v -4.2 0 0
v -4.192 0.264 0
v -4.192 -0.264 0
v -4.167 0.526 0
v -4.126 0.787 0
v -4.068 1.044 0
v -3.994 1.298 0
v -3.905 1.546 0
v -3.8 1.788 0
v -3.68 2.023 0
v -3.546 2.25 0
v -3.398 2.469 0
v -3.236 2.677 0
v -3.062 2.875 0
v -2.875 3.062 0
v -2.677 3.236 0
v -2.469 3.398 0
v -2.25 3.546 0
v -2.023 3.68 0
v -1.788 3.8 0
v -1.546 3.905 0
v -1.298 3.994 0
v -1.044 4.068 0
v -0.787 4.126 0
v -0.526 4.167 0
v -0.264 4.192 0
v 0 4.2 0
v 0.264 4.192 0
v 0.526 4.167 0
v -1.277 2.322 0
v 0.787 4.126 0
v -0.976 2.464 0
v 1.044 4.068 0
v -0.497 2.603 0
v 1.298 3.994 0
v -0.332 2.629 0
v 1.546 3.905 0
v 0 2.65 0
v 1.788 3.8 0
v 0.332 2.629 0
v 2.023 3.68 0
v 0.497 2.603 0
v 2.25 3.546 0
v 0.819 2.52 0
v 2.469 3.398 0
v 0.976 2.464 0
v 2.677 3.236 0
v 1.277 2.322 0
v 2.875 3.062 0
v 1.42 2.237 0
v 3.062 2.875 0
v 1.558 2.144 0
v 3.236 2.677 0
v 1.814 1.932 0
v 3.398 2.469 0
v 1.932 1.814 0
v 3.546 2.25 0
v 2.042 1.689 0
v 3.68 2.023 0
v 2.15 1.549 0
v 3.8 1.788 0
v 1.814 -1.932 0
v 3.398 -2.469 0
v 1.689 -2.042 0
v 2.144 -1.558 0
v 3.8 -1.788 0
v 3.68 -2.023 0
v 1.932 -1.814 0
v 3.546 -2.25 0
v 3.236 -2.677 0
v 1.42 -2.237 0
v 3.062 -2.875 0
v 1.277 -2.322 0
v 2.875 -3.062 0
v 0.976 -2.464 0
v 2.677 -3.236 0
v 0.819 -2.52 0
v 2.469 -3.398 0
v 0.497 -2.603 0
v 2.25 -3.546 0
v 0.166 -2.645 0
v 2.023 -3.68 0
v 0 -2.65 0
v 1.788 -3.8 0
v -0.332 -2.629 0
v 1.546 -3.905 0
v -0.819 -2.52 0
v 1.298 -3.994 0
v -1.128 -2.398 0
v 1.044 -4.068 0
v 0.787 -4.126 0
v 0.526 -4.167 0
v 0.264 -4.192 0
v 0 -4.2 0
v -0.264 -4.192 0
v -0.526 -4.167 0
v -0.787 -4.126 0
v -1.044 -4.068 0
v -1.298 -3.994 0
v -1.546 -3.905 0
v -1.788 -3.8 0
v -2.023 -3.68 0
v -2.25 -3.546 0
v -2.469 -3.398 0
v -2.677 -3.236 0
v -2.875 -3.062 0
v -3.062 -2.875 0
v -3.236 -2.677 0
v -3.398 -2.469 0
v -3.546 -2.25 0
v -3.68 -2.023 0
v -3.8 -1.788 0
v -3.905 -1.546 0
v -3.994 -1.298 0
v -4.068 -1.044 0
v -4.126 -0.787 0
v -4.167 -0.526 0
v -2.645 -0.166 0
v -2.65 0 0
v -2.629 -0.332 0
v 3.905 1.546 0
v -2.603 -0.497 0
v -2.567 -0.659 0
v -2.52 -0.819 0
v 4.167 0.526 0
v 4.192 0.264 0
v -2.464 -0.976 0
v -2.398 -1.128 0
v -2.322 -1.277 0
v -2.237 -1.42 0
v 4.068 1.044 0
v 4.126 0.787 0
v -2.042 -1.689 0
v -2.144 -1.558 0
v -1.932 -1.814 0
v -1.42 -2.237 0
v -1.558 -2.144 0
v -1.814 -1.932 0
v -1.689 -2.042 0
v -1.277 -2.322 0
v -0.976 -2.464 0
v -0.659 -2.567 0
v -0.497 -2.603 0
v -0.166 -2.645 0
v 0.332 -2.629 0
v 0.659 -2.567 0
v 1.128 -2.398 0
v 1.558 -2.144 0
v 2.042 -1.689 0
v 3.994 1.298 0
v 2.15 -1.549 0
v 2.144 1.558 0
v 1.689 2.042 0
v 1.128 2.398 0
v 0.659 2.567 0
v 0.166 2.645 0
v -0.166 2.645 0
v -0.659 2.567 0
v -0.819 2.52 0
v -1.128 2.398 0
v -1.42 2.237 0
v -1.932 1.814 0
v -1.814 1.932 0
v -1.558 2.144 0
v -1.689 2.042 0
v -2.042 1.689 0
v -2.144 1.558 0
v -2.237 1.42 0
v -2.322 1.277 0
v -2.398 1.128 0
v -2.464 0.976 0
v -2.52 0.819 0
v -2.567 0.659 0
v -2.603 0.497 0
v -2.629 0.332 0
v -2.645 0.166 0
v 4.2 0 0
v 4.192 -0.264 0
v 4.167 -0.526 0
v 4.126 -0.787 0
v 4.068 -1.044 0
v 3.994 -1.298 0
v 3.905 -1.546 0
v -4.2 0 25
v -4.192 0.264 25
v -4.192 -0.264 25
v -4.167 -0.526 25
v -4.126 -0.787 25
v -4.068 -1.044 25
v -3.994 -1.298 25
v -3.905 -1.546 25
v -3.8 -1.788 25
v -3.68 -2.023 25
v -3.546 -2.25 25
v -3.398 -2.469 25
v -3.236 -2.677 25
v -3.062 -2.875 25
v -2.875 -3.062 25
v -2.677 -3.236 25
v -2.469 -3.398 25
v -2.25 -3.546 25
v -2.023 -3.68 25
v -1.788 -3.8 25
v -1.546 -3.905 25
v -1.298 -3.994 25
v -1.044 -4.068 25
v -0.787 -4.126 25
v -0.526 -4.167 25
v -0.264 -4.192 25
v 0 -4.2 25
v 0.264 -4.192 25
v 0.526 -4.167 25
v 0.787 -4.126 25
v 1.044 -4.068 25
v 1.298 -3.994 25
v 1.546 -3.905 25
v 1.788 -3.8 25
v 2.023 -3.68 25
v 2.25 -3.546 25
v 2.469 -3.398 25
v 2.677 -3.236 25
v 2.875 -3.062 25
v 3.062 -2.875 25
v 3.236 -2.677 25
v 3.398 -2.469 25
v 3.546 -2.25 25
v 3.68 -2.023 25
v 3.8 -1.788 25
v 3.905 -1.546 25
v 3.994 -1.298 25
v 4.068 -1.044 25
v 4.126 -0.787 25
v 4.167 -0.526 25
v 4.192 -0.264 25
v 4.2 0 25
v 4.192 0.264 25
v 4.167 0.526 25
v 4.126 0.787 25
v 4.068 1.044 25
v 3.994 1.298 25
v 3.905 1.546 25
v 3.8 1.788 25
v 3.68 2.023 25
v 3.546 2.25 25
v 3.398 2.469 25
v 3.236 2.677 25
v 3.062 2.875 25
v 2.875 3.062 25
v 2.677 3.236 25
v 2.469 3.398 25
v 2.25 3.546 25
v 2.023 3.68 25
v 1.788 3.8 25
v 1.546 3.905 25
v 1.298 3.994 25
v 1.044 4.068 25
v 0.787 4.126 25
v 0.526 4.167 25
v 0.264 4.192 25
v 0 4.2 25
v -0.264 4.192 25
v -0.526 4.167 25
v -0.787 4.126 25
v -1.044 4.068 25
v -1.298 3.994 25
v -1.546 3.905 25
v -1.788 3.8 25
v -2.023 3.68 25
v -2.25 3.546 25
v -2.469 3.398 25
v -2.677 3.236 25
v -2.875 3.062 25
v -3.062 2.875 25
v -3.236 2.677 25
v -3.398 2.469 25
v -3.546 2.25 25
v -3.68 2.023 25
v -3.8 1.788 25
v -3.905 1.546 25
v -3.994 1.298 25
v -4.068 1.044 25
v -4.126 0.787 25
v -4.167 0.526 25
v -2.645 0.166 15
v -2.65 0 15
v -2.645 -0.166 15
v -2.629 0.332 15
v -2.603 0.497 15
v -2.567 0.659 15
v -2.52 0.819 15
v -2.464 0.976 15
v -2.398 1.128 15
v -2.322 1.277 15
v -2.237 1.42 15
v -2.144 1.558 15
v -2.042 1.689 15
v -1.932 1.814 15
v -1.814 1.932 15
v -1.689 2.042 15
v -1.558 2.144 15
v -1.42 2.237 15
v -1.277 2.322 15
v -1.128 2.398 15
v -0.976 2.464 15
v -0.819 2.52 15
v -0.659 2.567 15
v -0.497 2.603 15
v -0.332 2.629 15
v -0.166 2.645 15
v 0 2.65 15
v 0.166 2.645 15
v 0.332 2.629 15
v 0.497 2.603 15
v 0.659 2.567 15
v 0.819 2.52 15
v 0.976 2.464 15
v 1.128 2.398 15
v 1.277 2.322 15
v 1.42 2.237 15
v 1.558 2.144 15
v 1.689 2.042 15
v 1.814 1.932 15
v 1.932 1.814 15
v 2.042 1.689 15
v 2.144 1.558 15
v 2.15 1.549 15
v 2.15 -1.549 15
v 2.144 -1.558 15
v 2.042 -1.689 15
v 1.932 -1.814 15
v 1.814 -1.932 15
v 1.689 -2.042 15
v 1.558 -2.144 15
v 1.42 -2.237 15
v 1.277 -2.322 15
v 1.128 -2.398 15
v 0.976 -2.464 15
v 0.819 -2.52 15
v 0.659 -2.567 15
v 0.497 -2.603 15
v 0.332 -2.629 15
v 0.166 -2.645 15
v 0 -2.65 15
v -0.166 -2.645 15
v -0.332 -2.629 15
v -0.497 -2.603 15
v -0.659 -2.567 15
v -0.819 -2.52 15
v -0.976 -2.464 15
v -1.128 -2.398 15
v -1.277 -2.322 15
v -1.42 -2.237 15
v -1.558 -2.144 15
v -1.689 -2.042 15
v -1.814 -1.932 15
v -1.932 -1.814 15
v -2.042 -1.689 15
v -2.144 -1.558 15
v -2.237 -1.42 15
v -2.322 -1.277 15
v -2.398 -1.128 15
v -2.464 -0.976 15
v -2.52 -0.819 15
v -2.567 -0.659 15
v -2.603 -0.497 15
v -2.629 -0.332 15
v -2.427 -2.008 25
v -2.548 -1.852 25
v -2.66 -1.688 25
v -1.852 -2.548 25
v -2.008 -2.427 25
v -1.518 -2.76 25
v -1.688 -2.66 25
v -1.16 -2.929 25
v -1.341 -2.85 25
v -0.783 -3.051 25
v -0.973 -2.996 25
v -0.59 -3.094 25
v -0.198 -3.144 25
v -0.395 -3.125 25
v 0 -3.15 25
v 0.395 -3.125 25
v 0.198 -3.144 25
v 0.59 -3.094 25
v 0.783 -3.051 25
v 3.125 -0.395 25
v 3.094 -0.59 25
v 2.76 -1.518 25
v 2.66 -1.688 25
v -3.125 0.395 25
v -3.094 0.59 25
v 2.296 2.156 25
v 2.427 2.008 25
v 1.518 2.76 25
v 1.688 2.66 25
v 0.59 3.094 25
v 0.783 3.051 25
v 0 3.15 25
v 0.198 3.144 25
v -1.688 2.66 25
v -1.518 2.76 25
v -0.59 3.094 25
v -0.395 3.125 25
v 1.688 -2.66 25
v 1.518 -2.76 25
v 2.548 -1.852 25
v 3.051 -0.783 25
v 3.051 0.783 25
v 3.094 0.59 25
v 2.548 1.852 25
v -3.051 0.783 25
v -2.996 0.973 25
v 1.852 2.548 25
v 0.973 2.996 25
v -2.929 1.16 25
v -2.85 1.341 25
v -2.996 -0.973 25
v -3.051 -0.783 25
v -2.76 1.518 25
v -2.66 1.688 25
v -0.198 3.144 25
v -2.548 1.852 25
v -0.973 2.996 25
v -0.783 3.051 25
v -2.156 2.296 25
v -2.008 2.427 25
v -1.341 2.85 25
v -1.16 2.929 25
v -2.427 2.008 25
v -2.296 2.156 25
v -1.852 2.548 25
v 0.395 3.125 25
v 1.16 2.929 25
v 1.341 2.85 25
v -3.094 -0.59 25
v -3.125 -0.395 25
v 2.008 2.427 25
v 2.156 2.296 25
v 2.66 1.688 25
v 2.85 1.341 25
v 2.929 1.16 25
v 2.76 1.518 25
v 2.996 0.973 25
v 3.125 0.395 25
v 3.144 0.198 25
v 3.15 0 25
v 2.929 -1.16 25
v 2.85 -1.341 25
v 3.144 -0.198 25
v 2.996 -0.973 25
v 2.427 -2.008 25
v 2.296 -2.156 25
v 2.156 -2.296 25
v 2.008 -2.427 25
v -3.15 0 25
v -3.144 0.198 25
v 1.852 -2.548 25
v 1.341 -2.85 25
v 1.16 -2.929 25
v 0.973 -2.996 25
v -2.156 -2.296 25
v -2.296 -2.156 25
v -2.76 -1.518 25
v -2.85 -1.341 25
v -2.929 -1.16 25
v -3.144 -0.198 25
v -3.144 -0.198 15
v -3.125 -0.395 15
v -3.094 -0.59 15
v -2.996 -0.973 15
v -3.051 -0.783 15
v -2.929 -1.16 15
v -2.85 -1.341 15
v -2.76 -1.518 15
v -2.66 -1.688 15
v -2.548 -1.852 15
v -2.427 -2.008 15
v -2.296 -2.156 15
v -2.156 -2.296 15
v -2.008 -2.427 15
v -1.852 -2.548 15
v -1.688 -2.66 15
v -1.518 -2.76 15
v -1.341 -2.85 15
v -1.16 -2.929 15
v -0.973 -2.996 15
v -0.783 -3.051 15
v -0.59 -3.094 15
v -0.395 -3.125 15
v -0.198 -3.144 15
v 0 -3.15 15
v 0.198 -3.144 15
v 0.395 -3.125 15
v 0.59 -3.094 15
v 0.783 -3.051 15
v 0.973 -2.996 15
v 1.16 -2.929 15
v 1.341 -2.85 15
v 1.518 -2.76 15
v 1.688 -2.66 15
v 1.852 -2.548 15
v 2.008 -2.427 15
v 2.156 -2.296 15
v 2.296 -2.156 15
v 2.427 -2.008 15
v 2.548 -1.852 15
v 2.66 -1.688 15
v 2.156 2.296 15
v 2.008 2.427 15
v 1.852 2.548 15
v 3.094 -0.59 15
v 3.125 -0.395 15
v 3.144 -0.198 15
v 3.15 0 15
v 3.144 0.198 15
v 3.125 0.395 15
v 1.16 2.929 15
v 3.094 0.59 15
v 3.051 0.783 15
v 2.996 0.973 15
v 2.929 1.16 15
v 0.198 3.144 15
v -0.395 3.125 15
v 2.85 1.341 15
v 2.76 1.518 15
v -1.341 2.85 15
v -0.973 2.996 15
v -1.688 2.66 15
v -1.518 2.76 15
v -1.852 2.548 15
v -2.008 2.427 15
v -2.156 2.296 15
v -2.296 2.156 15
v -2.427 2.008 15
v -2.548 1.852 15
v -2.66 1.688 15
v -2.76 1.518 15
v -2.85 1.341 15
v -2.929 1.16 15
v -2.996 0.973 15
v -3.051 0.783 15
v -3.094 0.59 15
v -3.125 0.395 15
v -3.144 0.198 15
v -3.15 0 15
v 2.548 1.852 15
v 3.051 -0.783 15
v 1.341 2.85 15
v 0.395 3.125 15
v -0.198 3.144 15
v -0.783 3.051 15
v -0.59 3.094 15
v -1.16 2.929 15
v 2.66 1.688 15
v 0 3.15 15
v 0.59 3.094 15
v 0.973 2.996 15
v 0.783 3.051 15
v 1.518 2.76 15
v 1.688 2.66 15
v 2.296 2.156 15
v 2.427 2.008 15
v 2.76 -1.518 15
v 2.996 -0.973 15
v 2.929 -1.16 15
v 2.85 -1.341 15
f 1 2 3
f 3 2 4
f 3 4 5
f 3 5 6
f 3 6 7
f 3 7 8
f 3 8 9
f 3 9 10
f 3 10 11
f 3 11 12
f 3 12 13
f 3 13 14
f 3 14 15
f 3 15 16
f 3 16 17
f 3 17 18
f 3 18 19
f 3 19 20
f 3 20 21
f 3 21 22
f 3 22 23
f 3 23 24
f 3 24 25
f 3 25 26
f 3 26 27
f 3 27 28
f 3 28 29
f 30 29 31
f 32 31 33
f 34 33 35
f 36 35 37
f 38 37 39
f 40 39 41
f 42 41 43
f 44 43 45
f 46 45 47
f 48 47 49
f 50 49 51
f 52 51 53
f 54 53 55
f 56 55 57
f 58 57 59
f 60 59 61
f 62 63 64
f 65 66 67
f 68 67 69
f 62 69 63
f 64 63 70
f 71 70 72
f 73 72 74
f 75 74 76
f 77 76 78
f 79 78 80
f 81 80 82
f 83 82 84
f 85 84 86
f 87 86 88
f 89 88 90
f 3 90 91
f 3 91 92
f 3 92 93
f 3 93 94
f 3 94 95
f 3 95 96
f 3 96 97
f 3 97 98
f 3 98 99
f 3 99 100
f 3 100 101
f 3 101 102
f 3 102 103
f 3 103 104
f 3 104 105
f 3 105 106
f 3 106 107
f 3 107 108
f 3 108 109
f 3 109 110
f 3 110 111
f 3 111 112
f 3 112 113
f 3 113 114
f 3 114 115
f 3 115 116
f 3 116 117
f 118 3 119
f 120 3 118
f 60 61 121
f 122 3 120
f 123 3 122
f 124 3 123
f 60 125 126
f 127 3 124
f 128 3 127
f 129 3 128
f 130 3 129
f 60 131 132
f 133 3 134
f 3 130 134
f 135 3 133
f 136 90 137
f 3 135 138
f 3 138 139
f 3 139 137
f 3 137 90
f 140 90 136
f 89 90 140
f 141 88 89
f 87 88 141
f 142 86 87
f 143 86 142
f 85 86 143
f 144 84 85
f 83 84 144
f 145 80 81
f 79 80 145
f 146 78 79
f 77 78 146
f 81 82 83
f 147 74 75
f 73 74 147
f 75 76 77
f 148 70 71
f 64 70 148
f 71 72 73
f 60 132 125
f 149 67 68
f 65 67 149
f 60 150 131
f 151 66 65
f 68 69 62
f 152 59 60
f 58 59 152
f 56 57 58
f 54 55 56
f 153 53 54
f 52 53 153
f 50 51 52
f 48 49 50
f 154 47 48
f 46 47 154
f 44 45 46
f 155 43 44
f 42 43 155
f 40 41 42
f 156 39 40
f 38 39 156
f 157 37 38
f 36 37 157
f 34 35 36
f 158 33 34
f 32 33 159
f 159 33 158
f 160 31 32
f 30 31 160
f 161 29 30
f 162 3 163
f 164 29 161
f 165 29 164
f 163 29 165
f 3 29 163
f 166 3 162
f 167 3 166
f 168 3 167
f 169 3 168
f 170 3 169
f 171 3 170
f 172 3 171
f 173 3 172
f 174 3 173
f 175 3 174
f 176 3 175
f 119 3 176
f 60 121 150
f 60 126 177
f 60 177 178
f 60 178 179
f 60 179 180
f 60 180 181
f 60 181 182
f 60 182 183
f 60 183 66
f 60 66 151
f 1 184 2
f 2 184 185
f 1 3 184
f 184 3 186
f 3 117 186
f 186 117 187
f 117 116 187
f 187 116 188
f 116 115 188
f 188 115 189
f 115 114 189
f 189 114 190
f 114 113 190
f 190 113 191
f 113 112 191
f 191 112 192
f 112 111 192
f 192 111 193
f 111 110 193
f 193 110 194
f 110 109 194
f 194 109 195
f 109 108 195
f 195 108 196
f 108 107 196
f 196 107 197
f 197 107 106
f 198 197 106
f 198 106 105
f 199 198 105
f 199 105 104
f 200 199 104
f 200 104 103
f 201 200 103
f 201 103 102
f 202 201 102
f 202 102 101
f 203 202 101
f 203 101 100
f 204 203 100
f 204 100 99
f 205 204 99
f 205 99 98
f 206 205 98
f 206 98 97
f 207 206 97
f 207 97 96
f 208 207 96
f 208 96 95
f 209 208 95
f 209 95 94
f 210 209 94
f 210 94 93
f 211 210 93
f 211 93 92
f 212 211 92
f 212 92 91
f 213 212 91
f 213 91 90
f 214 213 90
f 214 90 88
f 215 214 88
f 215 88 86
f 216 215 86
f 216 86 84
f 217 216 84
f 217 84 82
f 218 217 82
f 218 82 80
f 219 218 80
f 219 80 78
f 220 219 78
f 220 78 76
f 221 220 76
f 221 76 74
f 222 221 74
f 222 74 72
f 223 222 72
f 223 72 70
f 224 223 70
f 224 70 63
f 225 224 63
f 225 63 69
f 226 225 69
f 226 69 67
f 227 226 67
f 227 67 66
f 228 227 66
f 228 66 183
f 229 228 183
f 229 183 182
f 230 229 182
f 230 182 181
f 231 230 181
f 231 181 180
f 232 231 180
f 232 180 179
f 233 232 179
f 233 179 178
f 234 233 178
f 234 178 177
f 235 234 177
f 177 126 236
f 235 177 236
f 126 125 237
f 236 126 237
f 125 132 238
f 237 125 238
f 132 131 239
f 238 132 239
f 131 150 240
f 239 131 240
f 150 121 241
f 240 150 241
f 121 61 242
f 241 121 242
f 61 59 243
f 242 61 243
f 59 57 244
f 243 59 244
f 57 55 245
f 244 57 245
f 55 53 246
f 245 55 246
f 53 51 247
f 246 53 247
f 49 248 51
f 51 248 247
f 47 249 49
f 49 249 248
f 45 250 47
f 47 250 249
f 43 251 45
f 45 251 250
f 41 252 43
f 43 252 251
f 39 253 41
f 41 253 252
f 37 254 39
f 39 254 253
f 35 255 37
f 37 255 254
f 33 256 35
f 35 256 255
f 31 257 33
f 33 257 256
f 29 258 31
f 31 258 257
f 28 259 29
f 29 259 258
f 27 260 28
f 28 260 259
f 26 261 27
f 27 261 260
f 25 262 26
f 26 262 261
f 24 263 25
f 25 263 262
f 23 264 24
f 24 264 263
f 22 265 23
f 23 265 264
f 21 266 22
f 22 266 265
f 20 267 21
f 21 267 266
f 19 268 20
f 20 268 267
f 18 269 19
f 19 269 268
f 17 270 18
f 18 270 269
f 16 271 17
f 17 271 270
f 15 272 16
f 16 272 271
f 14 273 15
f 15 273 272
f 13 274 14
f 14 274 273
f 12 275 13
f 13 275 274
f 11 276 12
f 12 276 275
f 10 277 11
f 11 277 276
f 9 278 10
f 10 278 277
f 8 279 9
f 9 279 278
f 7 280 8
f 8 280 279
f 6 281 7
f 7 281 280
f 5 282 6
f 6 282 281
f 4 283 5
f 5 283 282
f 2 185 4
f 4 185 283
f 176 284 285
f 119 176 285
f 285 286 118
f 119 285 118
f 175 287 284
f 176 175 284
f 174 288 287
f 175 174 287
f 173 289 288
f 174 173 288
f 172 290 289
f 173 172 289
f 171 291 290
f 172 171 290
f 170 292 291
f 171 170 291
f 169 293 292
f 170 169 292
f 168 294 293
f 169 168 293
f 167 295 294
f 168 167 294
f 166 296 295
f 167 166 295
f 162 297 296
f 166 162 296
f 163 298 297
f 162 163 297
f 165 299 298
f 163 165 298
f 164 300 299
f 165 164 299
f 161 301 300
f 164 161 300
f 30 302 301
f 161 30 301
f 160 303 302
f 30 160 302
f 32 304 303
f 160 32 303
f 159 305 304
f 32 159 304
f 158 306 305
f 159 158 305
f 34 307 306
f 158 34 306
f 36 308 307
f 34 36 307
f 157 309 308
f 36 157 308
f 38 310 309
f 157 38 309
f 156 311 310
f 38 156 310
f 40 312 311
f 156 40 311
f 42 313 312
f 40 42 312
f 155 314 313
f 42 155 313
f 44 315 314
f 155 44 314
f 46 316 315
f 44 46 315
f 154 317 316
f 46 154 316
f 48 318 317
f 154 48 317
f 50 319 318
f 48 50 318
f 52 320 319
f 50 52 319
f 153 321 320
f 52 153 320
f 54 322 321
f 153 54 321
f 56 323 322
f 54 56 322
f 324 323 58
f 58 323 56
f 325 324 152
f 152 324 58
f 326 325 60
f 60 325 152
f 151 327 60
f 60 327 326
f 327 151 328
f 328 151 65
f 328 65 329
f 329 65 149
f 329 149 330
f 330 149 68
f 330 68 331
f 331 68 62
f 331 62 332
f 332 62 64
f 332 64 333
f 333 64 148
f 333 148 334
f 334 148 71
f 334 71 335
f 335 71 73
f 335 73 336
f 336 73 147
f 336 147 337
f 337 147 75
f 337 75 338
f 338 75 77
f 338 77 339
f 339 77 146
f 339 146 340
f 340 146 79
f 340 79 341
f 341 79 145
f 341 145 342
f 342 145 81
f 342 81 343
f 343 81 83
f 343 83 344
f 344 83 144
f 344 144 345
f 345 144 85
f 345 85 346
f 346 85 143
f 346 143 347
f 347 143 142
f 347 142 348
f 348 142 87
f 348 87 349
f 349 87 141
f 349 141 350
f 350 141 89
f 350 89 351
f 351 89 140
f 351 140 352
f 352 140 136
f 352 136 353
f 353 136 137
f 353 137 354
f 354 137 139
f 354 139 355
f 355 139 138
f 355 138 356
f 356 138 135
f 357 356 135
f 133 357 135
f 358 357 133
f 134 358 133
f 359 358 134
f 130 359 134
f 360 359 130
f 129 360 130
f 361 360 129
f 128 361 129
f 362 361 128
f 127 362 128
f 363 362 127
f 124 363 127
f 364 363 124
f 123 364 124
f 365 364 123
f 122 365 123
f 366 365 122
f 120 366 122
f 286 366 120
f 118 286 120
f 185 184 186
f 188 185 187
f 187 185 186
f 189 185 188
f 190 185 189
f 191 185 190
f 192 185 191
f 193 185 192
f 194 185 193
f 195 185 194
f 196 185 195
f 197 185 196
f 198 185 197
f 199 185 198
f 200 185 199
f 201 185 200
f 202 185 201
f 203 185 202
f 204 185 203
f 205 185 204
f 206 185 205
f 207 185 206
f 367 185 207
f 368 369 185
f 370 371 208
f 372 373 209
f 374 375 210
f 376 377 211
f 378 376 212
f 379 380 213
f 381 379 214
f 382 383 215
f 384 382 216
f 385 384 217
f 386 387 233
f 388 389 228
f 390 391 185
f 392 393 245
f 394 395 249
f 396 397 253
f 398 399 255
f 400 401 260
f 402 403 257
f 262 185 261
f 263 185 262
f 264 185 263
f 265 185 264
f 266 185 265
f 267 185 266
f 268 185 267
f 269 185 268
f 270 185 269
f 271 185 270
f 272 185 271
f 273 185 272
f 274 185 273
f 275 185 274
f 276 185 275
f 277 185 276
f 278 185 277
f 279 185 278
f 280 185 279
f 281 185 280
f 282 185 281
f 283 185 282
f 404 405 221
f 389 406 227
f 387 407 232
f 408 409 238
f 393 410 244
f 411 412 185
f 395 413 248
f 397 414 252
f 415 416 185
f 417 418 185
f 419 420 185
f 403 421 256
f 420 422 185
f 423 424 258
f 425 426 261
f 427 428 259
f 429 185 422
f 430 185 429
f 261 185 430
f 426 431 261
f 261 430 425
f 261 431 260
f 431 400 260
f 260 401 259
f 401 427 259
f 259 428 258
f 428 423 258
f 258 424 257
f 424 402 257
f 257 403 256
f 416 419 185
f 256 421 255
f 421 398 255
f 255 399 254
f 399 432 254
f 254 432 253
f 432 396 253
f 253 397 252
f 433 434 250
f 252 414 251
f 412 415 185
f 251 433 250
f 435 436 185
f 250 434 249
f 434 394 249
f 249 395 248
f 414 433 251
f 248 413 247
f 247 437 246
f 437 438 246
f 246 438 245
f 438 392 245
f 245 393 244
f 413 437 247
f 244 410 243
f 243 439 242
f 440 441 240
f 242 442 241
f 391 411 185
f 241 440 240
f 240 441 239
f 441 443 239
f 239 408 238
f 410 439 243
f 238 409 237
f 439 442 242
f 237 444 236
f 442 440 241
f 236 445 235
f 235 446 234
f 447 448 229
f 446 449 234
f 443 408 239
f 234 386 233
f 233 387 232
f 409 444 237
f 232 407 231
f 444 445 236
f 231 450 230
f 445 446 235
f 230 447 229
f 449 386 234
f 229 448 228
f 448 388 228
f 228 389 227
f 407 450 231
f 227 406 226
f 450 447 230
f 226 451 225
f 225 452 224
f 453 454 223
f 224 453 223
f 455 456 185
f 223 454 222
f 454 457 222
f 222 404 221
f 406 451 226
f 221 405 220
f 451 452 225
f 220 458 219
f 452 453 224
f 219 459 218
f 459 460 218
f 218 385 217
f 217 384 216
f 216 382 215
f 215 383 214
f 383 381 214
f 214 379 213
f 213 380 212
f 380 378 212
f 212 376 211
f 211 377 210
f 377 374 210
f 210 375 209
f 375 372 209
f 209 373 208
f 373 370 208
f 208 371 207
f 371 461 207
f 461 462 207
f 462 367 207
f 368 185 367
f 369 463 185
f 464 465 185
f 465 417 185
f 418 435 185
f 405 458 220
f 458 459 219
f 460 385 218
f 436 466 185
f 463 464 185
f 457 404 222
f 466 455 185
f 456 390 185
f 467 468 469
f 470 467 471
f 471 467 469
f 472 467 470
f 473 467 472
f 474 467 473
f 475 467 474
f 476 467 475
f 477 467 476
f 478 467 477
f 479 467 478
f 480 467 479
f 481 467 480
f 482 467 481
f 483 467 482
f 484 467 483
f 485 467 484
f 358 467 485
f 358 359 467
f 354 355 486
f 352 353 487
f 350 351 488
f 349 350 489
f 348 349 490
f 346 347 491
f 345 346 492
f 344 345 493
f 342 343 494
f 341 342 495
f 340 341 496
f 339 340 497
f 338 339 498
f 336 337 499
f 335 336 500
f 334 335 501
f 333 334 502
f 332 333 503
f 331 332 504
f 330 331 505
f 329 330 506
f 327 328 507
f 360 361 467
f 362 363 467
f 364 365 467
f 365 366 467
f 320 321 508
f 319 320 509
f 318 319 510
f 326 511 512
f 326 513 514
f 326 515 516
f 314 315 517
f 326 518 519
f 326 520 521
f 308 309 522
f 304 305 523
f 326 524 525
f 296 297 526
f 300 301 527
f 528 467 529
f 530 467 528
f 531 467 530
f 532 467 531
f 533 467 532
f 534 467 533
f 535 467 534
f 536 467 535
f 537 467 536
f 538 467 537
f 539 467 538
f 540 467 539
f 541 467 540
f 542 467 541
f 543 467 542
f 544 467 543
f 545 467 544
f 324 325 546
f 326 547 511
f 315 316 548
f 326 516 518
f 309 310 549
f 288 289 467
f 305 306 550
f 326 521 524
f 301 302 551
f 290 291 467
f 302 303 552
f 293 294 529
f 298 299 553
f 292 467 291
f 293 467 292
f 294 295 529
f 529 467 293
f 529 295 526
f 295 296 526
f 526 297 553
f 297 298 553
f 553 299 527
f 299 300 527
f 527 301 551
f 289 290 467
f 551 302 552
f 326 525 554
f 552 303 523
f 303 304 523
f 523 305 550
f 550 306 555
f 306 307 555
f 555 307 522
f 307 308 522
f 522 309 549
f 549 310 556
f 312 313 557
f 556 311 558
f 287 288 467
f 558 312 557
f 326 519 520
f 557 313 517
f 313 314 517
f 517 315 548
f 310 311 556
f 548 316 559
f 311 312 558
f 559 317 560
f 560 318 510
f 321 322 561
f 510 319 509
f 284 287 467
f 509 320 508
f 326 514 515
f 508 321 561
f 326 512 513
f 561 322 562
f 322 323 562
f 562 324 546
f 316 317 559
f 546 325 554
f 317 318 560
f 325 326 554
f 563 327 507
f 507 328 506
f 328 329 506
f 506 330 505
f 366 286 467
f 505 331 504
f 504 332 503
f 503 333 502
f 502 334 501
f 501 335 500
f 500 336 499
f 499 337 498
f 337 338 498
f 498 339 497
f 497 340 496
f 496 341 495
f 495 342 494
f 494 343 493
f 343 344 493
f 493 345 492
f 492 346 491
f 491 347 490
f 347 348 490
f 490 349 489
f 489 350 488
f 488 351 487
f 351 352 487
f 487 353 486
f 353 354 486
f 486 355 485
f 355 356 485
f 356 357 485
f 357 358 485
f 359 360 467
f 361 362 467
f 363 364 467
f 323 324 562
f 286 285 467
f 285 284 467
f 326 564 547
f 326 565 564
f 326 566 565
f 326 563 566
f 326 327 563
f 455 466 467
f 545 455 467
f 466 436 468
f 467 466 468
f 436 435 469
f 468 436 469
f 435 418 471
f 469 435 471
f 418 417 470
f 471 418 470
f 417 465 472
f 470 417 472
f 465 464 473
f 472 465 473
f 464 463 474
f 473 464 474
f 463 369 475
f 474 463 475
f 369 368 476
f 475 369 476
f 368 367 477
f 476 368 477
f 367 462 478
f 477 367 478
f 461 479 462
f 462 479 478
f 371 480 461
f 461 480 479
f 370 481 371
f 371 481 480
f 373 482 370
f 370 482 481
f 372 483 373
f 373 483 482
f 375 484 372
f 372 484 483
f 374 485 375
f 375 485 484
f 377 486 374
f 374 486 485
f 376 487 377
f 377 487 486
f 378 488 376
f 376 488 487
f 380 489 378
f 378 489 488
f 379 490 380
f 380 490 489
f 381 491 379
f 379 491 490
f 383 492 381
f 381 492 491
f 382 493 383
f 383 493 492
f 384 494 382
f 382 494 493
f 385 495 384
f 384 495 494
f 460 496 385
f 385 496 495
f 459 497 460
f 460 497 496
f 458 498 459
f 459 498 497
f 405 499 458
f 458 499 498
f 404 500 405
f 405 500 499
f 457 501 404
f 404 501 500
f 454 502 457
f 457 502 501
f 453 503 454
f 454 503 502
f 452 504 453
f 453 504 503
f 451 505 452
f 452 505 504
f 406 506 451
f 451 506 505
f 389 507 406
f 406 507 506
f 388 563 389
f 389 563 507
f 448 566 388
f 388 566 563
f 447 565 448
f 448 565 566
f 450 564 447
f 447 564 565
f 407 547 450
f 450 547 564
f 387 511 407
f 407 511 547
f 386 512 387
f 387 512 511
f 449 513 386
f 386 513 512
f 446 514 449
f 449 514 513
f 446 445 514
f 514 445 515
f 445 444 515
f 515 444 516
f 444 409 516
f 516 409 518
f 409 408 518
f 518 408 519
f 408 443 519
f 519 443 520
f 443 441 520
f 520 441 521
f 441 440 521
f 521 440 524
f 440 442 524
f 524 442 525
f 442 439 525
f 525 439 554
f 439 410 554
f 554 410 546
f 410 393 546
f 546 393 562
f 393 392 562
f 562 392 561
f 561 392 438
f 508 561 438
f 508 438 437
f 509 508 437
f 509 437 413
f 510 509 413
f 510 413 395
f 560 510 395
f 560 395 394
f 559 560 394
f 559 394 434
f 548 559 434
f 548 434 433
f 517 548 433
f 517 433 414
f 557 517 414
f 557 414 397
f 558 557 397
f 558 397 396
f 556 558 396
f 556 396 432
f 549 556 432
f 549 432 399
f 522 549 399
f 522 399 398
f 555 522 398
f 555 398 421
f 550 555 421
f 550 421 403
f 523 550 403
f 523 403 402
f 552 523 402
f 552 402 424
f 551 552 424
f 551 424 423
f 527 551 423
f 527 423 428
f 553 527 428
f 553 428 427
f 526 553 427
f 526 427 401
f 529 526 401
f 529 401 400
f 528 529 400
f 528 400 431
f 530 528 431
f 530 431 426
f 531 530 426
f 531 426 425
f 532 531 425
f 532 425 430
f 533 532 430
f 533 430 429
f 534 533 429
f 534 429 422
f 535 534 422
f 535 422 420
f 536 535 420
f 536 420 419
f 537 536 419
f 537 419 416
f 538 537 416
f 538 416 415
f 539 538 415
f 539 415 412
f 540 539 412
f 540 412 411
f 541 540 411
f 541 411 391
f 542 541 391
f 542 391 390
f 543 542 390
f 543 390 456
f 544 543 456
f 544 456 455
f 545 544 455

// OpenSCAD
// piezas de doble rosca, prueba

rint = 6.3/2;
rext = 8.4/2;
altura = 10;

rint2 = 5.3/2;
rext2 = 8.4/2;
altura2 = 15;

translate([0,0, altura2]) difference(){cylinder(h = altura, r1 = rext, r2 = rext, $fn = 100);cylinder(h = altura, r1 = rint, r2 = rint, $fn = 100);}

difference(){cylinder(h = altura2, r1 = rext2, r2 = rext2, $fn = 100);cylinder(h = altura2, r1 = rint2, r2 = rint2, $fn = 100);}

translate([2.15,-3.5/2, 0]) cube([0.6,3.5,altura2]);
//en x me muevo 2.2 mm, genero un prisma
